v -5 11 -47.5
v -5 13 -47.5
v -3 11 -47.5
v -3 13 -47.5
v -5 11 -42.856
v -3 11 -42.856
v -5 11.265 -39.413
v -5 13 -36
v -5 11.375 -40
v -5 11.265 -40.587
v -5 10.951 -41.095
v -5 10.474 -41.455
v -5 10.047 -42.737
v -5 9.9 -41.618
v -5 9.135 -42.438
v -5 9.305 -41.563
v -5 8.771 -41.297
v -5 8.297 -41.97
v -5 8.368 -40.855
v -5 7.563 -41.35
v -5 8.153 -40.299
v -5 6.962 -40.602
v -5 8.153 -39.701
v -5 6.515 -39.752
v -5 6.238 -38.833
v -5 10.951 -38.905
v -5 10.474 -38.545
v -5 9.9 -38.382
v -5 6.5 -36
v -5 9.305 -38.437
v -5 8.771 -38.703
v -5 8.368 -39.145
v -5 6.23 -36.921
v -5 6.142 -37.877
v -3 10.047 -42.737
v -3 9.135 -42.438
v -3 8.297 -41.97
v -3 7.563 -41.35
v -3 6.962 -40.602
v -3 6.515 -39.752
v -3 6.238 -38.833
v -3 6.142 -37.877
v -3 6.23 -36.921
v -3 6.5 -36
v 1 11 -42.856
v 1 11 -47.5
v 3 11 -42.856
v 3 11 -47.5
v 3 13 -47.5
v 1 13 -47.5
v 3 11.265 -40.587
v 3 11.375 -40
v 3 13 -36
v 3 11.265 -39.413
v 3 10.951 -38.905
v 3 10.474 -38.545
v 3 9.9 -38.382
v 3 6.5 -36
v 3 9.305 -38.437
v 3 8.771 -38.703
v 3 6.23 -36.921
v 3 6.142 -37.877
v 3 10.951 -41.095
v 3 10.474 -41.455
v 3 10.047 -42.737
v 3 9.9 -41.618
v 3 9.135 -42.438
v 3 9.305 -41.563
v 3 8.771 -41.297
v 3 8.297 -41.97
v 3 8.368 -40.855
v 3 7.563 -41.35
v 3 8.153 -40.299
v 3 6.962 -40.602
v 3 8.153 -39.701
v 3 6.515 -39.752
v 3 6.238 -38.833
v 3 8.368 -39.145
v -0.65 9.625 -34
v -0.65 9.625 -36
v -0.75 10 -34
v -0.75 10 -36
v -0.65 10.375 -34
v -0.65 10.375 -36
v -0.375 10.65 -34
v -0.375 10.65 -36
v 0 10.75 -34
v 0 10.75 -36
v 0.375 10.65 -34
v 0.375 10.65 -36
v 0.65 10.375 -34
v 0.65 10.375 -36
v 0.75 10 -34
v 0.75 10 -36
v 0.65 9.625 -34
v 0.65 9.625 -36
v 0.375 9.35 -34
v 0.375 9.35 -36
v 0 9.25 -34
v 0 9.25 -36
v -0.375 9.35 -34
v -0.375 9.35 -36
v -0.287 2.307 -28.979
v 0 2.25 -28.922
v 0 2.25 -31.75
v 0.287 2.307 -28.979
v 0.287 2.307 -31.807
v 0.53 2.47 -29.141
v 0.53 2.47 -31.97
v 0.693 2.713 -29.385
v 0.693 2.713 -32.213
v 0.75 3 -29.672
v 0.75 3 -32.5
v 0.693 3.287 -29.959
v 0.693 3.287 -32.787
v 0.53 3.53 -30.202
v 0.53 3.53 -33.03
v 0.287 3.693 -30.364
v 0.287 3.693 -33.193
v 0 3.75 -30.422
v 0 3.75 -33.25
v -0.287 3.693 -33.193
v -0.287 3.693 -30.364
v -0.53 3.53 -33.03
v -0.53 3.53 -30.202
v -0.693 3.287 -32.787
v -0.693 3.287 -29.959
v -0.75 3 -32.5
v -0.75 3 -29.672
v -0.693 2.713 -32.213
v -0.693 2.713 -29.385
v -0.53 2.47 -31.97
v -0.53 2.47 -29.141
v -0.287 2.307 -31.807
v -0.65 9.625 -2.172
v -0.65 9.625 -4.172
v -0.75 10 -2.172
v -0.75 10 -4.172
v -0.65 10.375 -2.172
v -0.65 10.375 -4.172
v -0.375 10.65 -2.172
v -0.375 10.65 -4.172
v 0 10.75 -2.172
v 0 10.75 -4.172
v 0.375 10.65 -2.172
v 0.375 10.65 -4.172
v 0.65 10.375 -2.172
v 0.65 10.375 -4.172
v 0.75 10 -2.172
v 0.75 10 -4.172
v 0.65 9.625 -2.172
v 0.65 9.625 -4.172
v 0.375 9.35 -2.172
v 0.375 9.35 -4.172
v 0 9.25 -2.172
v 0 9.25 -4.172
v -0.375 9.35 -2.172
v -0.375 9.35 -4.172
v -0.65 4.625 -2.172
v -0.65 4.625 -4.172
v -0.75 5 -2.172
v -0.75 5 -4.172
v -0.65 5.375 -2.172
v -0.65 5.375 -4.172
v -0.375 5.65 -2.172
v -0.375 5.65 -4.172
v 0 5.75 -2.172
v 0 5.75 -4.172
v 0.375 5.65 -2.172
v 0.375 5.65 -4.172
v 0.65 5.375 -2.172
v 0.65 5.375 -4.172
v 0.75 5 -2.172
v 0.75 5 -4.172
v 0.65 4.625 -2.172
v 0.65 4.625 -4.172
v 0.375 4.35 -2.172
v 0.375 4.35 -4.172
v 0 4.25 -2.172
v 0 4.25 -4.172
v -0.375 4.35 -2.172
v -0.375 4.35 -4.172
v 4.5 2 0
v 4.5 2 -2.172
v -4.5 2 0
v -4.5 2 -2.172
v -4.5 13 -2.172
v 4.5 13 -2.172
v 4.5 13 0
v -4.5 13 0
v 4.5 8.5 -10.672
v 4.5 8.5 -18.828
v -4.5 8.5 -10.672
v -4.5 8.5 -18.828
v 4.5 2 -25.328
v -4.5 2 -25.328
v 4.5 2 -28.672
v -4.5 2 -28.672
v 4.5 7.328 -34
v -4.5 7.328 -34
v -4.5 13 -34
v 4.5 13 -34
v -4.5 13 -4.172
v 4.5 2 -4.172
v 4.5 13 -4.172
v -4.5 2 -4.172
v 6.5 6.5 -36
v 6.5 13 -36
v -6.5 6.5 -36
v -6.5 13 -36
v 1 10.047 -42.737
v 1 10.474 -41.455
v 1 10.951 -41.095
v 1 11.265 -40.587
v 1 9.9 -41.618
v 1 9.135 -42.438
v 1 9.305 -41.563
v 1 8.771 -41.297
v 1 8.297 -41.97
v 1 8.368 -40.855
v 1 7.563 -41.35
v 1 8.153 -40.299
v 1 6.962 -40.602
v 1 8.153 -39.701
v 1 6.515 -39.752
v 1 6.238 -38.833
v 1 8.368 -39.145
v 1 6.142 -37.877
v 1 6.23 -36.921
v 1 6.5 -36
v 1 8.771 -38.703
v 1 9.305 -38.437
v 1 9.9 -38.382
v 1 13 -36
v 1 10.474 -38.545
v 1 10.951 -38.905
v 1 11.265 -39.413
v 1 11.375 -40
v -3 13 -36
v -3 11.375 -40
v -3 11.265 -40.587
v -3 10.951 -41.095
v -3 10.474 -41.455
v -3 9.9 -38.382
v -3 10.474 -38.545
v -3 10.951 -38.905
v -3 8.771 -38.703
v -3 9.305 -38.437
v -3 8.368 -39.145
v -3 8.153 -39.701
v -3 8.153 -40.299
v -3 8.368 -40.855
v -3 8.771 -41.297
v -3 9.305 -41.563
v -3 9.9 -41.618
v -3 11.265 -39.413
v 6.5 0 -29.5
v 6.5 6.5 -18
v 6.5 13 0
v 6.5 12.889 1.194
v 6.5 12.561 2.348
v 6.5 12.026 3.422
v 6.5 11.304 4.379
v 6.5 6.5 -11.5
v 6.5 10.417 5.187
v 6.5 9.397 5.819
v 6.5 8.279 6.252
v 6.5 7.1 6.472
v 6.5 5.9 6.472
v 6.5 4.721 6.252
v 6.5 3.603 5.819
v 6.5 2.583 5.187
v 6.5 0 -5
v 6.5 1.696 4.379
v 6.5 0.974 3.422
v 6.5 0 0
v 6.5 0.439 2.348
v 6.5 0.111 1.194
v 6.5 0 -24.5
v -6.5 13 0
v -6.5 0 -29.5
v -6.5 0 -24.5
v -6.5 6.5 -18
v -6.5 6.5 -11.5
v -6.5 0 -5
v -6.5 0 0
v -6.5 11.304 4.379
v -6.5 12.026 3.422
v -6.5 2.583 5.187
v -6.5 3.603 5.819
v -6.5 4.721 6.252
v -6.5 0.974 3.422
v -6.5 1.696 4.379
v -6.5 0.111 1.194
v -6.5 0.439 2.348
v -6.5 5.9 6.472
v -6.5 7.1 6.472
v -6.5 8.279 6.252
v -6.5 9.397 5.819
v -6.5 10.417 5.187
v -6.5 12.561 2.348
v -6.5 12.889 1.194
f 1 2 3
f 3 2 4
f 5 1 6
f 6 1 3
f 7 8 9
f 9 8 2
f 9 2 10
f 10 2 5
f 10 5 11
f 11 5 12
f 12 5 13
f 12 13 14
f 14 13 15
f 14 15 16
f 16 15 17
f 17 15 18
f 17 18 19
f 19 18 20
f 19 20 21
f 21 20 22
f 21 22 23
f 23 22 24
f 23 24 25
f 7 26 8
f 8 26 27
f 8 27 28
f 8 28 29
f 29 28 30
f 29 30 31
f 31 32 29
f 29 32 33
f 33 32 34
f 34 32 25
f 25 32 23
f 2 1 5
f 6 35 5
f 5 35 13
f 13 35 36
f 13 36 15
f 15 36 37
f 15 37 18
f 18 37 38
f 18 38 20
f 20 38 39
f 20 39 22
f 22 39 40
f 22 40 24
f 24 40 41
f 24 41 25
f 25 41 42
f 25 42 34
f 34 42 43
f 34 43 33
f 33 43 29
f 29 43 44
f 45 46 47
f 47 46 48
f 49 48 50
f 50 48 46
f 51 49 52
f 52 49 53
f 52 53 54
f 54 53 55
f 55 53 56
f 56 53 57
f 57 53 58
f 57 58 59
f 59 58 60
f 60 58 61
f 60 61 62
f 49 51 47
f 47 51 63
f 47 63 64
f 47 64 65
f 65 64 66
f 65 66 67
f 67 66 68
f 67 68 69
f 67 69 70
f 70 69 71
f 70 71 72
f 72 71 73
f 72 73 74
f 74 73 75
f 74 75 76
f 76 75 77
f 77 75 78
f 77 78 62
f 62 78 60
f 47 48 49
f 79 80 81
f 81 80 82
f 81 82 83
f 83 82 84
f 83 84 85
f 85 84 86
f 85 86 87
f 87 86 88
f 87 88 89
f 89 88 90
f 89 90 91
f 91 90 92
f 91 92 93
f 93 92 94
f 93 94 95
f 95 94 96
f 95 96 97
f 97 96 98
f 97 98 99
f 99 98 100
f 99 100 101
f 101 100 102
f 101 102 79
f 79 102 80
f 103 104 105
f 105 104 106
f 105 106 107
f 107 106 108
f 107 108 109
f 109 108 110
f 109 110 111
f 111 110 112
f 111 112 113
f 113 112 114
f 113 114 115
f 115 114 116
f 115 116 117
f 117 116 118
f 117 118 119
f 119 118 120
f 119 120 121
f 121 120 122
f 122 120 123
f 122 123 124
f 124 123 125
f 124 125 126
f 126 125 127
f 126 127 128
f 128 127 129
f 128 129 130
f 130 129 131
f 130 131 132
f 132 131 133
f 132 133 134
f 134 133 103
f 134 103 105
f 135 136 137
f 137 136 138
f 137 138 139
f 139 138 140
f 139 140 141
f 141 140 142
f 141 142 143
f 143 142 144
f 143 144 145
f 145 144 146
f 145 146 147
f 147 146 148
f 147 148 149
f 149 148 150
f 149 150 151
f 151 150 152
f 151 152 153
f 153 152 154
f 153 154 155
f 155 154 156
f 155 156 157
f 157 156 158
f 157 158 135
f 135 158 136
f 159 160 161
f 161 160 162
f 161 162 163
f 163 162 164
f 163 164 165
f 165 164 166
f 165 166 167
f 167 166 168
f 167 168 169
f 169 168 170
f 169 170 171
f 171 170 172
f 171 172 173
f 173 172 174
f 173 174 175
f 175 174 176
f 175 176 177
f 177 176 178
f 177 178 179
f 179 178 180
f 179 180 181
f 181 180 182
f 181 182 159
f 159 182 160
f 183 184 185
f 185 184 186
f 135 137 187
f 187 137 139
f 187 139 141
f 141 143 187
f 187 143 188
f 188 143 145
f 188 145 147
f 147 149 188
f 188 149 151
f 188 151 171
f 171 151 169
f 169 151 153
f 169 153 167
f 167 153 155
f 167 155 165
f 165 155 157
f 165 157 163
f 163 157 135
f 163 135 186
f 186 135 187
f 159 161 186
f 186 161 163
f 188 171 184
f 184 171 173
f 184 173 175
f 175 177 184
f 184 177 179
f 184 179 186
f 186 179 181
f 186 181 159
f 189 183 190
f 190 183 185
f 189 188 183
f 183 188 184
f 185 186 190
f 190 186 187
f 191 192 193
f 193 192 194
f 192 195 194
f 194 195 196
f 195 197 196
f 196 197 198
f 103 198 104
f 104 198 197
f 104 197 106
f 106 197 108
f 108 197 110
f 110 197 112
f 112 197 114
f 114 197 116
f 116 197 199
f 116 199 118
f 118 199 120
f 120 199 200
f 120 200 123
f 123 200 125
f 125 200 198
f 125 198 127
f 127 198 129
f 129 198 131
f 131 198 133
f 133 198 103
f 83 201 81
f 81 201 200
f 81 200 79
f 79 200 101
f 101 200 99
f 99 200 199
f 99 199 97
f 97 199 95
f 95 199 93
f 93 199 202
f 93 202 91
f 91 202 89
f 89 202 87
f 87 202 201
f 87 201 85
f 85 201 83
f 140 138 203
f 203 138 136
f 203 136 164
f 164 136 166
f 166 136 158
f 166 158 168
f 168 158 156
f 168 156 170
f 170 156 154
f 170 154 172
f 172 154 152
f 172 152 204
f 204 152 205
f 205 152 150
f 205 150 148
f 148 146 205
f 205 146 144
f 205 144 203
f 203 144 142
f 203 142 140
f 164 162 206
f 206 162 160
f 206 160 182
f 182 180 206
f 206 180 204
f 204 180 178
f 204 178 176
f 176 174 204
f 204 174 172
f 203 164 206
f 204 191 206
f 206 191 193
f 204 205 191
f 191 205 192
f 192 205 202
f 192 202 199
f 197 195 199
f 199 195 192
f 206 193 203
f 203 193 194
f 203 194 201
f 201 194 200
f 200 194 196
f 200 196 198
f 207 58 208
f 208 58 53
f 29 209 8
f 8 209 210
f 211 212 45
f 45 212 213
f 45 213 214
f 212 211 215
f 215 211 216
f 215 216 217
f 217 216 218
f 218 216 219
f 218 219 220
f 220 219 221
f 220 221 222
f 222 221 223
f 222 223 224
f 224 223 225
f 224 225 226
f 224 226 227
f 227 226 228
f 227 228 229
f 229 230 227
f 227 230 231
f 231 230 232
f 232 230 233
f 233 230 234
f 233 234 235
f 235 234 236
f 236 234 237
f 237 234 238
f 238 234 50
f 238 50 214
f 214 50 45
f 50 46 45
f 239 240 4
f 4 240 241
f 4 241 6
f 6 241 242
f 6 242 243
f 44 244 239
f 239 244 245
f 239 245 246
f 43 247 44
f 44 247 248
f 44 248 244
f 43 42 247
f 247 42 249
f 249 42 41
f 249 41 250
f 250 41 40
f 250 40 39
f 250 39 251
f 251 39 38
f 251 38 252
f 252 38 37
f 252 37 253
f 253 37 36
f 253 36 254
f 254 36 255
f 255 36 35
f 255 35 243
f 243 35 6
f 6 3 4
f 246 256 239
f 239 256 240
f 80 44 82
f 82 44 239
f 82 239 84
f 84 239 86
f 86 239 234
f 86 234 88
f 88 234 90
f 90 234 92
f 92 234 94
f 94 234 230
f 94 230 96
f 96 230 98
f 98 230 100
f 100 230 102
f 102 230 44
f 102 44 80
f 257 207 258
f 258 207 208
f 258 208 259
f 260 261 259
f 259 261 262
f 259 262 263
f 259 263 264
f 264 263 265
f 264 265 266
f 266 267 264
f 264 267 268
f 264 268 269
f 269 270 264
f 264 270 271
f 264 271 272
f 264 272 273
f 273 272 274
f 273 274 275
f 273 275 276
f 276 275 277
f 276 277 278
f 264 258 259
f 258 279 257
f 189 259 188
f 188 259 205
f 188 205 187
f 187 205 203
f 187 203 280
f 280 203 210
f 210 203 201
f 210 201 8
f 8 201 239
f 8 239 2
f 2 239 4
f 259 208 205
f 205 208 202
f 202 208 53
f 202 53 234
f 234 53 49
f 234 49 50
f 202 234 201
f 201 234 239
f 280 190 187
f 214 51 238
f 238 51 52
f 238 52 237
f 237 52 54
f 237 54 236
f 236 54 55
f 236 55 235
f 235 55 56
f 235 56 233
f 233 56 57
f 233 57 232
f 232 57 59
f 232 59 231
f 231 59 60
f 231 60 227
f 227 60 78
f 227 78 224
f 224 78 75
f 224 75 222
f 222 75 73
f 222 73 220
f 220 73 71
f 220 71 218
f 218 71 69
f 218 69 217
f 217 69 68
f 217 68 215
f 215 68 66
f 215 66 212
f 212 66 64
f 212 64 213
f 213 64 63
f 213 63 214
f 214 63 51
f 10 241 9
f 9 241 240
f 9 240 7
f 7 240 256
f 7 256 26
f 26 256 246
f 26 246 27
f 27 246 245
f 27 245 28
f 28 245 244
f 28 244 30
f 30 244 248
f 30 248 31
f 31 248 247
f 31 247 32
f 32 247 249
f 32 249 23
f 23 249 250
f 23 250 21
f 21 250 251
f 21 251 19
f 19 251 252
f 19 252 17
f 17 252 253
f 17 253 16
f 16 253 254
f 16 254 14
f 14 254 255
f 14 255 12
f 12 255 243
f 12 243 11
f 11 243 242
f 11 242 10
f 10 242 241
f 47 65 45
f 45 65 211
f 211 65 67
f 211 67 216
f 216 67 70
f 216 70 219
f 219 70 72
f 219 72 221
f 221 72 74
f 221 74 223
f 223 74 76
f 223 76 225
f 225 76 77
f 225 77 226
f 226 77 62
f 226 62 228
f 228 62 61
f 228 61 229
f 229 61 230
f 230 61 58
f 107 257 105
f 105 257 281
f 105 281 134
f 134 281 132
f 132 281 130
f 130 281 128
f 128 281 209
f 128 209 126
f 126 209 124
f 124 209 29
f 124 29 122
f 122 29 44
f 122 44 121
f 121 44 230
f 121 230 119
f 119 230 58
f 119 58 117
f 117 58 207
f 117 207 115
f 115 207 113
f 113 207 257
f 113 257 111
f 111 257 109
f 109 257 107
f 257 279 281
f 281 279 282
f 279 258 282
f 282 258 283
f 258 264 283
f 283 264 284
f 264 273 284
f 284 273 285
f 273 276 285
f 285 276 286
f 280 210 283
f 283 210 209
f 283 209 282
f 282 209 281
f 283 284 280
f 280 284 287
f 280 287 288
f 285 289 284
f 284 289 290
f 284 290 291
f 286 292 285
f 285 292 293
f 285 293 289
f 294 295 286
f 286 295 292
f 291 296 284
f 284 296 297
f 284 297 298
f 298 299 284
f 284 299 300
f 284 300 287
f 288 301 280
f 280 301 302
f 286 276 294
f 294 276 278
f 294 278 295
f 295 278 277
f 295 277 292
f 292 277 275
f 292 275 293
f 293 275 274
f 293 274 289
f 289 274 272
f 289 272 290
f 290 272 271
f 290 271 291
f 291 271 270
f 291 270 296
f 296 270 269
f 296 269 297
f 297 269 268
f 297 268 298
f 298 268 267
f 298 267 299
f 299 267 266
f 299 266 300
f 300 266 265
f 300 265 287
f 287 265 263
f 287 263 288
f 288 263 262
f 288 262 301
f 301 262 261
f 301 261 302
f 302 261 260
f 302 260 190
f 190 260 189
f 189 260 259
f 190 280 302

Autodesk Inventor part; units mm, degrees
ref_plane "YZ Plane" through (0, 0, 0) normal (1, 0, 0) x (0, 1, 0)
ref_plane "XZ Plane" through (0, 0, 0) normal (0, 1, 0) x (-1, 0, 0)
sketch "Sketch2" plane through (0, 0, 0) normal (1, 0, 0) x (0, 1, 0)
  line L0 (0, 0) -> (0, -5)
  line L1 (13, 0) -> (13, -18)
  arc A0 (13, 0) -> (0, 0) centre (6.5, 0) ccw
  line L2 (-3.1385, 0) -> (18.8309, 0) projected
  line L3 (0, -54.8723) -> (0, 16.7287) projected
  line L4 (0, -5) -> (6.5, -11.5)
  line L5 (0, -5) -> (9.1924, -5) construction
  line L6 (6.5, -11.5) -> (6.5, -18)
  line L7 (6.5, -18) -> (0, -24.5)
  line L8 (6.5, -18) -> (15.6924, -18) construction
  line L9 (0, -24.5) -> (0, -29.5)
  line L10 (0, -29.5) -> (6.5, -36)
  line L11 (0, -29.5) -> (9.1924, -29.5) construction
  line L12 (13, -18) -> (13, -36)
  line L13 (13, -36) -> (13, -42.5)
  arc A1 (6.5, -36) -> (13, -42.5) centre (11.1419, -37.8581) ccw
  circle A2 centre (9.75, -40) radius 1.625
  dimension "d3" = 18
  dimension "d4" = 13
  dimension "d9" = 45
  dimension "d10" = 6.5
  dimension "d11" = 5
  dimension "d12" = 6.5
  dimension "d13" = 135
  dimension "d14" = 6.5
  dimension "d15" = 5
  dimension "d16" = 45
  dimension "d17" = 6.5
  dimension "d18" = 18
  dimension "d19" = 6.5
  dimension "d20" = 5
  dimension "d21" = 3.25
  dimension "d22" = 3.25
  dimension "d23" = 2.5
extrude "Extrusion1" add sketch "Sketch2" along normal mid plane 13 contours L2 L1 L12 L13 A1 L10 L3 L7 L6 L4 L0 | A0 L2
sketch "Sketch3" plane through (-6.5, 13, 0) normal (0, 1, 0) x (1, 0, 0)
  line L0 (0, 36) -> (13, 36) projected
  line L1 (0, 43) -> (1.5, 43)
  line L2 (1.5, 43) -> (1.5, 36)
  line L3 (1.5, 36) -> (0, 36)
  line L4 (0, 36) -> (0, 43)
  line L5 (0, 0) -> (0, 42.5) projected
  line L6 (3.5, 43) -> (7.5, 43)
  line L7 (7.5, 43) -> (7.5, 36)
  line L8 (7.5, 36) -> (3.5, 36)
  line L9 (3.5, 36) -> (3.5, 43)
  line L10 (9.5, 43) -> (13, 43)
  line L11 (13, 43) -> (13, 36)
  line L12 (13, 36) -> (9.5, 36)
  line L13 (9.5, 36) -> (9.5, 43)
  line L14 (13, 42.5) -> (13, 0) projected
  point P0 (6.5, 0)
  dimension "d47" = 1.5
  dimension "d48" = 7
  dimension "d49" = 4
  dimension "d50" = 7
  dimension "d51" = 2
  dimension "d52" = 7
  dimension "d53" = 2
extrude "Extrusion2" cut sketch "Sketch3" against normal blind 13
ref_plane "Work Plane1" through (4.5, 0, 0) normal (1, 0, 0) x (0, 0, -1)
sketch "Sketch4" plane through (4.5, 0, 0) normal (1, 0, 0) x (0, 0, -1)
  arc A0 (0, 13) -> (0, 0) centre (0, 6.5) ccw projected
  line L0 (0, 13) -> (36, 13) projected
  line L1 (36, 13) -> (36, 6.5) projected
  line L2 (36, 6.5) -> (29.5, 0) projected
  line L3 (29.5, 0) -> (24.5, 0) projected
  line L4 (24.5, 0) -> (18, 6.5) projected
  line L5 (36, 13) -> (36, 6.5) projected
  line L6 (36, 6.5) -> (29.5, 0) projected
  line L7 (29.5, 0) -> (24.5, 0) projected
  line L8 (24.5, 0) -> (18, 6.5) projected
  line L9 (18, 6.5) -> (11.5, 6.5) projected
  line L10 (11.5, 6.5) -> (5, 0) projected
  line L11 (5, 0) -> (0, 0) projected
  arc A1 (0, 13) -> (0, 0) centre (0, 6.5) ccw projected
  line L12 (0, 13) -> (36, 13) projected
  line L13 (0, 13) -> (0, 2)
  line L14 (0, 2) -> (2.1716, 2)
  line L15 (4.1716, 2) -> (10.6716, 8.5)
  line L16 (4.1716, 2) -> (13.364, 2) construction
  line L17 (34, 13) -> (34, 7.3284)
  line L18 (34, 7.3284) -> (28.6716, 2)
  line L19 (34, 7.3284) -> (41.5355, 7.3284) construction
  line L20 (28.6716, 2) -> (25.3284, 2)
  line L21 (25.3284, 2) -> (18.8284, 8.5)
  line L22 (25.3284, 2) -> (34.5208, 2) construction
  line L23 (18.8284, 8.5) -> (10.6716, 8.5)
  line L24 (4.1716, 2) -> (4.1716, 13)
  line L25 (2.1716, 2) -> (2.1716, 13)
  line L26 (0, 13) -> (2.1716, 13)
  line L27 (4.1716, 13) -> (34, 13)
  dimension "d57" = 11
  dimension "d58" = 2
  dimension "d59" = 45
  dimension "d60" = 2
  dimension "d62" = 2
  dimension "d63" = 2
  dimension "d64" = 135
  dimension "d65" = 2
  dimension "d66" = 2
  dimension "d67" = 135
  dimension "d94" = 2
  dimension "d95" = 2
extrude "Extrusion3" cut sketch "Sketch4" against normal blind 9 contours L0 L25 L14 L13 | L0 L17 L18 L20 L21 L23 L15 L24
sketch "Sketch5" plane through (4.5, 2, -4.1716) normal (0, 0, -1) x (-1, 0, 0)
  line L0 (0, 11) -> (0, 0) projected
  line L1 (9, 0) -> (9, 11) projected
  line L2 (0, 11) -> (0, 0) projected
  line L3 (0, 0) -> (9, 0) projected
  line L4 (9, 0) -> (9, 11) projected
  line L5 (0, 11) -> (9, 11) projected
  circle A0 centre (4.5, 8) radius 0.75
  circle A1 centre (4.5, 3) radius 0.75
  point P0 (4.5, -2)
  dimension "d72" = 1.5
  dimension "d73" = 4.5
  dimension "d74" = 3
  dimension "d75" = 1.5
  dimension "d76" = 3
  dimension "d77" = 4.5
extrude "Extrusion4" cut sketch "Sketch5" against normal blind 2 contours A0 | A1
sketch "Sketch6" plane through (1, 13, -36) normal (0, 0, -1) x (-1, 0, 0)
  line L0 (1, -15.6) -> (1, 2.6) projected
  line L1 (10.1, -13) -> (-8.1, -13) projected
  circle A0 centre (1, -3) radius 0.75
  line L2 (0, 0) -> (4, 0) projected
  circle A1 centre (1, -10) radius 0.75
  point P0 (1, -13)
  dimension "d80" = 1.5
  dimension "d81" = 3
  dimension "d82" = 1.5
  dimension "d83" = 3
extrude "Extrusion5" cut sketch "Sketch6" against normal blind 9
sketch "Sketch7" plane through (3, 13, -36) normal (1, 0, 0) x (0, 0, -1)
  line L0 (6.5, 0) -> (0, 0) projected
  line L1 (6.5, 0) -> (11.5, 0)
  line L2 (11.5, 0) -> (11.5, -2)
  line L3 (11.5, -2) -> (6.5, -2)
  line L4 (6.5, -2) -> (6.5, 0)
  point P0 (-36, -13)
  dimension "d86" = 5
  dimension "d87" = 2
extrude "Extrusion6" add sketch "Sketch7" against normal blind 2
sketch "Sketch8" plane through (-5, 13, -42.5) normal (-1, 0, 0) x (0, 0, 1)
  line L0 (0, 0) -> (6.5, 0) projected
  line L1 (-5, -2) -> (0, -2)
  line L2 (0, -2) -> (0, 0)
  line L3 (0, 0) -> (-5, 0)
  line L4 (-5, 0) -> (-5, -2)
  point P0 (42.5, -13)
  dimension "d90" = 5
  dimension "d91" = 2
extrude "Extrusion7" add sketch "Sketch8" against normal blind 2
properties part number "index"
